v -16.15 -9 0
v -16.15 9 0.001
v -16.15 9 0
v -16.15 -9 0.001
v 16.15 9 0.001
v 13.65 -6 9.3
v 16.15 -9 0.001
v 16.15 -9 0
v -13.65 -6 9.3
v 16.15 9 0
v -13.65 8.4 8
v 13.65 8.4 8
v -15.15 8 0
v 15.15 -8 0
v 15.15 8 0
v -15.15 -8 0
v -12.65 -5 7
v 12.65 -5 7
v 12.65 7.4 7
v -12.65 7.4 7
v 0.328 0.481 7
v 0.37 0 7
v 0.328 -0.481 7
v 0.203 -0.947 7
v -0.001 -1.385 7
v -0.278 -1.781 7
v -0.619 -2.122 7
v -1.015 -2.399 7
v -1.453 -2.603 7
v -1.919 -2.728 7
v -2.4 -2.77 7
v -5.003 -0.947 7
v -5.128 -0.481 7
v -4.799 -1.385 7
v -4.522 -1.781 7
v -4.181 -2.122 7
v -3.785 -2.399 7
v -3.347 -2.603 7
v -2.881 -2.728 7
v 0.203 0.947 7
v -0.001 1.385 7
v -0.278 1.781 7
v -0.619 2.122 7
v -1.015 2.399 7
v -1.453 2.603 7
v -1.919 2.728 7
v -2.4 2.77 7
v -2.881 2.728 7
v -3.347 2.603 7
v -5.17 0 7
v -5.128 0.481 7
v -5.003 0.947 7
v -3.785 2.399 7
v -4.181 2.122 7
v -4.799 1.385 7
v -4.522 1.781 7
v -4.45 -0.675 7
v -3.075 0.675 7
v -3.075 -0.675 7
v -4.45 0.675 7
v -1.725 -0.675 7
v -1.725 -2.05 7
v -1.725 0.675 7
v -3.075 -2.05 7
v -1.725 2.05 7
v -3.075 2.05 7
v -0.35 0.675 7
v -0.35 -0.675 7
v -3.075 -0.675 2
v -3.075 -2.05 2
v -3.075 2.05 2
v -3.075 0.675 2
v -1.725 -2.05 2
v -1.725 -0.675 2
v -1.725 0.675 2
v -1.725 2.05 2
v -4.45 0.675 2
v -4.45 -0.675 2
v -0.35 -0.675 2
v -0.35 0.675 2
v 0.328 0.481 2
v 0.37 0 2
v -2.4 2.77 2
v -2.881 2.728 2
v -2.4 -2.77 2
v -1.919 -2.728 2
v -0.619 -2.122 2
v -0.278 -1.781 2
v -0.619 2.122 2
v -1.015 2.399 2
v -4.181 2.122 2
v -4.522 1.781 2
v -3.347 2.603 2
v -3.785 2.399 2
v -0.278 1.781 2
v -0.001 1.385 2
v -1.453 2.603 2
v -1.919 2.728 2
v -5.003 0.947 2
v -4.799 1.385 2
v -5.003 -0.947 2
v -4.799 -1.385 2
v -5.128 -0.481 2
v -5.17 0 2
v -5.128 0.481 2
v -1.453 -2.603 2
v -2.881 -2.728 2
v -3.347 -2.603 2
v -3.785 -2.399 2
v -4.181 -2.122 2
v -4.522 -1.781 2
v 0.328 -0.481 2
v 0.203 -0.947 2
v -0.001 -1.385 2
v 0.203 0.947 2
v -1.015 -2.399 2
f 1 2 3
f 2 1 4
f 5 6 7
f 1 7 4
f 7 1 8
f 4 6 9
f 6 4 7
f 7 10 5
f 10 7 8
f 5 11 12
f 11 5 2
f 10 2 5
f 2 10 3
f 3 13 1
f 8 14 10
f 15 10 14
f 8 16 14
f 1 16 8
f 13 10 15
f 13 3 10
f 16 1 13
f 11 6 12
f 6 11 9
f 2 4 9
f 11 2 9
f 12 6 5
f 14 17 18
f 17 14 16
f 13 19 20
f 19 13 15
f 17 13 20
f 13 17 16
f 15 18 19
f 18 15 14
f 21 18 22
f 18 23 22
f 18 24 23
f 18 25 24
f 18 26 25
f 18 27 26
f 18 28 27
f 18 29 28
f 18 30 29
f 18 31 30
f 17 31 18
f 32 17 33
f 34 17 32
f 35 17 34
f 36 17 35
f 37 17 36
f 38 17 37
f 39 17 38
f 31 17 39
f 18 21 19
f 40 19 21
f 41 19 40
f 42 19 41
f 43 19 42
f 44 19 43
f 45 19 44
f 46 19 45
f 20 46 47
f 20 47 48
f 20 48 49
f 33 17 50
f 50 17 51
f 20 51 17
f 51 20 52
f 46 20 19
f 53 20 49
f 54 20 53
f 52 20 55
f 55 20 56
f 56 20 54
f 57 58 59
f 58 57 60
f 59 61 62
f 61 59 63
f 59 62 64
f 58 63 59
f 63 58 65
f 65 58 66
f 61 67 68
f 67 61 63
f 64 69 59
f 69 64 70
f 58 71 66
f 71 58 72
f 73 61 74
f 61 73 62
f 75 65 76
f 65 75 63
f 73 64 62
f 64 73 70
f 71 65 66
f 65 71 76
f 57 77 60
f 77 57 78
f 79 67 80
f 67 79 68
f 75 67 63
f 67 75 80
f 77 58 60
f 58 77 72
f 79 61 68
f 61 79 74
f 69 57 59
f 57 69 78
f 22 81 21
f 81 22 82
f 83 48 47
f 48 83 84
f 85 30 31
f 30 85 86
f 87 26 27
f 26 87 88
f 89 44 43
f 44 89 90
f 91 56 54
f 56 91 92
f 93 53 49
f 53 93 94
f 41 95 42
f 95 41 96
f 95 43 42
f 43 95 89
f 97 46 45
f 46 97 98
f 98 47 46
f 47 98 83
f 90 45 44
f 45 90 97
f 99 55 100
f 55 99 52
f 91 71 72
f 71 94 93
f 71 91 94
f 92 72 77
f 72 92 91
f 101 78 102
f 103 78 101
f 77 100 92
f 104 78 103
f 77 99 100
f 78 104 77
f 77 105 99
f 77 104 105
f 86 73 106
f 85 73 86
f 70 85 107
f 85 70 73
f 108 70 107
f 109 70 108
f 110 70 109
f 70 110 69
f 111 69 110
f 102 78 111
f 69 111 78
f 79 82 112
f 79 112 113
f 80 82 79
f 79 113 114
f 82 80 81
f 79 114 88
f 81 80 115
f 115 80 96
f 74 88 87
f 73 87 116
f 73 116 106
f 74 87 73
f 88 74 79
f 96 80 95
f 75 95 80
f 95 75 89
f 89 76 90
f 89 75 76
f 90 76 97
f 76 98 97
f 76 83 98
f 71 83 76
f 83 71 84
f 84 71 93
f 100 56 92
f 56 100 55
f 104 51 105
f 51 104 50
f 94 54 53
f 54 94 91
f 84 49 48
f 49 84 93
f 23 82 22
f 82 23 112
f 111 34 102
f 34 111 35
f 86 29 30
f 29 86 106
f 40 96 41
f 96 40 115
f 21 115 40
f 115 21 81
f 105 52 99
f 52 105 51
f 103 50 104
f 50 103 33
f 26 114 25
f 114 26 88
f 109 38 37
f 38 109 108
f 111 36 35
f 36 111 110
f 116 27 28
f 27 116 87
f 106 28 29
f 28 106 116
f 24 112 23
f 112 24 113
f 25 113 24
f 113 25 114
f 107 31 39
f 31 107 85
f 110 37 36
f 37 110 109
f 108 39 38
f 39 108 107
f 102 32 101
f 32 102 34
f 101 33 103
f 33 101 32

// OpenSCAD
// Cherry MX standard (OEM) measurements
// Measurements and key sizes collected from:
// http://blog.maxkeyboard.com/dwkb/keycap-profile-size-information/
// https://support.wasdkeyboards.com/hc/en-us/articles/115009701328-Keycap-Size-Compatibility
// http://i.imgur.com/K5kui2s.jpg
// Visual information of key text collected from:
// https://www.keychatter.com/wp-content/uploads/2014/07/filco-standard-layout.png
// row number - front and back heights
r1_f = 10.1;
r1_b = 7.9;
r2_f = 9.3;
r2_b = 8;
r3_f = 9.3;
r3_b = 9;
r4_f = 10.8;
r4_b = 11.4;

// width measurement
x1_00 = 18;
x1_25 = 22.8;
x1_50 = 27.5;
x1_75 = 32.3;
x2_00 = 37.1;
x2_25 = 41.8;
x2_75 = 51.4;
space = 118.1;

// spacing measurement
normalSpacing = 12;
spacebarSpacing = 50; // default x6_25
spacebarX6Spacing = 49;
spacebarX6_5Spacing =  52.5;

// other measurements
rounding = 0.0001;
postDiam = 5.54;
crossLong = 4.1;
crossWide = 1.35;

// unspecified details
insetX = 5;
insetYfront = 3;
insetYback = 0.6;
wallThick = 1;
postBottomGap = 2;
topCurveDip = 1;

$fn = 36;

// This function borrowed from OpenSCAD Snippet Pad:
// https://openscadsnippetpad.blogspot.com/2017/05/circle-defined-by-three-points.html
// Finding the Center of a Circle from Three Points.
// Points must not be equal or collinear, - lie on a single straight line 
function circle_by_three_points(A, B, C) =
let (
  yD_b = C.y - B.y,  xD_b = C.x - B.x,  yD_a = B.y - A.y,
  xD_a = B.x - A.x,  aS = yD_a / xD_a,  bS = yD_b / xD_b,
  cex = (aS * bS * (A.y - C.y) + 
  bS * (A.x + B.x) -    aS * (B.x + C.x)) / (2 * (bS - aS)),
  cey = -1 * (cex - (A.x + B.x) / 2) / aS + (A.y + B.y) / 2
)
[cex, cey];


// front and back are heights, defined by row number
// deep and wide are measurements defined by keysize multiples
// keyText1 and keyText2 are the literal lines of text to be displayed on top of the key
// spacing is the measure from center to center of middle and offset stems, if applicable
// spaceAlign specifies the orientation for support posts, "vertical" for num+ and numEnter
module makeKey(front, back, deep, wide, keyText1, keyText2="", spacing=0, spaceAlign="horizontal")
{
    // find the lower height to base the inside roof on
    lowerHeight = (front < back ? front : back);
    union()
    {
        difference()
        {
            // outter shell
            hull()
            {
              // bottom
               // right
                // back
                translate([ (wide/2 - rounding/2),  (deep/2 - rounding/2), 0])
                    cylinder(h=0.001, d=rounding);
                // front
                translate([ (wide/2 - rounding/2), -(deep/2 - rounding/2), 0])
                    cylinder(h=0.001, d=rounding);
               // left
                // back
                translate([-(wide/2 - rounding/2),  (deep/2 - rounding/2), 0])
                    cylinder(h=0.001, d=rounding);
                // front
                translate([-(wide/2 - rounding/2), -(deep/2 - rounding/2), 0])
                    cylinder(h=0.001, d=rounding);
              // top
               // right
                // back
                translate([ (wide/2 - rounding/2 - insetX/2),  (deep/2 - rounding/2 - insetYback), back - rounding/2])
                    sphere(d=rounding);
                // front
                translate([ (wide/2 - rounding/2 - insetX/2), -(deep/2 - rounding/2 - insetYfront), front - rounding/2])
                    sphere(d=rounding);
               // left
                // back
                translate([-(wide/2 - rounding/2 - insetX/2),  (deep/2 - rounding/2 - insetYback), back - rounding/2])
                    sphere(d=rounding);
                // front
                translate([-(wide/2 - rounding/2 - insetX/2), -(deep/2 - rounding/2 - insetYfront), front - rounding/2])
                    sphere(d=rounding);
            } // end hull
            
            // inner cavity
            hull()
            {
              // bottom
               // right
                // back
                translate([ (wide/2 - rounding/2 - wallThick),  (deep/2 - rounding/2 - wallThick), -0.001])
                    cylinder(h=0.001, d=rounding);
                // front
                translate([ (wide/2 - rounding/2 - wallThick), -(deep/2 - rounding/2 - wallThick), -0.001])
                    cylinder(h=0.001, d=rounding);
               // left
                // back
                translate([-(wide/2 - rounding/2 - wallThick),  (deep/2 - rounding/2 - wallThick), -0.001])
                    cylinder(h=0.001, d=rounding);
                // front
                translate([-(wide/2 - rounding/2 - wallThick), -(deep/2 - rounding/2 - wallThick), -0.001])
                    cylinder(h=0.001, d=rounding);
              // top
               // right
                // back
                translate([ (wide/2 - rounding/2 - insetX/2 - wallThick),  (deep/2 - rounding/2 - insetYback - wallThick), lowerHeight - wallThick - rounding/2])
                    sphere(d=rounding);
                // front
                translate([ (wide/2 - rounding/2 - insetX/2 - wallThick), -(deep/2 - rounding/2 - insetYfront - wallThick), lowerHeight - wallThick - rounding/2])
                    sphere(d=rounding);
               // left
                // back
                translate([-(wide/2 - rounding/2 - insetX/2 - wallThick),  (deep/2 - rounding/2 - insetYback - wallThick), lowerHeight - wallThick - rounding/2])
                    sphere(d=rounding);
                // front
                translate([-(wide/2 - rounding/2 - insetX/2 - wallThick), -(deep/2 - rounding/2 - insetYfront - wallThick), lowerHeight - wallThick - rounding/2])
                    sphere(d=rounding);
            } // end hull
            
            // if only one line of text
            if (keyText2 == "")
            {
                translate([-wide/2 + insetX/2 + rounding*0.75, 0, lowerHeight - wallThick/2])
                    linear_extrude(abs(front - back) + wallThick/2)
                        text(text=keyText1, size=2.5, font="Arial", halign="left", valign="center");
            }
            // if two lines of text
            else
            {
                translate([-wide/2 + insetX/2 + rounding*0.75, 2, lowerHeight - wallThick/2])
                    linear_extrude(abs(front - back) + wallThick/2)
                        text(text=keyText1, size=2.5, font="Arial", halign="left", valign="center");
                translate([-wide/2 + insetX/2 + rounding*0.75, -1.5, lowerHeight - wallThick/2])
                    linear_extrude(abs(front - back) + wallThick/2)
                        text(text=keyText2, size=2.5, font="Arial", halign="left", valign="center");
            }
        } // end difference
        
        // center post
        
        center_post_shift = -1.0 * (0.5 * x1_75 - 0.5 * x1_50);
        difference()
        {
            translate([center_post_shift, 0, postBottomGap])
                cylinder(h=lowerHeight - wallThick - postBottomGap, d=postDiam);
            translate([center_post_shift, 0, 0]){
                cube([crossWide, crossLong, (lowerHeight - wallThick)*2], center=true);
                cube([crossLong, crossWide, (lowerHeight - wallThick)*2], center=true);
            }
        } // end difference
        
        // if this key has extra support posts
        if (spacing != 0)
        {
            translate([spaceAlign == "horizontal" ? spacing : 0, spaceAlign == "vertical" ? spacing : 0, 0])
                difference()
                {
                    translate([0, 0, postBottomGap])
                        cylinder(h=lowerHeight - wallThick - postBottomGap, d=postDiam);
                    cube([crossWide, crossLong, (lowerHeight - wallThick)*2], center=true);
                    cube([crossLong, crossWide, (lowerHeight - wallThick)*2], center=true);
                } // end difference
            
            translate([spaceAlign == "horizontal" ? -spacing : 0, spaceAlign == "vertical" ? -spacing : 0, 0])
                difference()
                {
                    translate([0, 0, postBottomGap])
                        cylinder(h=lowerHeight - wallThick - postBottomGap, d=postDiam);
                    cube([crossWide, crossLong, (lowerHeight - wallThick)*2], center=true);
                    cube([crossLong, crossWide, (lowerHeight - wallThick)*2], center=true);
                } // end difference
        }
    } // end union
} // end makeKey

makeKey(r2_f, r2_b, x1_00, x1_75, "");
